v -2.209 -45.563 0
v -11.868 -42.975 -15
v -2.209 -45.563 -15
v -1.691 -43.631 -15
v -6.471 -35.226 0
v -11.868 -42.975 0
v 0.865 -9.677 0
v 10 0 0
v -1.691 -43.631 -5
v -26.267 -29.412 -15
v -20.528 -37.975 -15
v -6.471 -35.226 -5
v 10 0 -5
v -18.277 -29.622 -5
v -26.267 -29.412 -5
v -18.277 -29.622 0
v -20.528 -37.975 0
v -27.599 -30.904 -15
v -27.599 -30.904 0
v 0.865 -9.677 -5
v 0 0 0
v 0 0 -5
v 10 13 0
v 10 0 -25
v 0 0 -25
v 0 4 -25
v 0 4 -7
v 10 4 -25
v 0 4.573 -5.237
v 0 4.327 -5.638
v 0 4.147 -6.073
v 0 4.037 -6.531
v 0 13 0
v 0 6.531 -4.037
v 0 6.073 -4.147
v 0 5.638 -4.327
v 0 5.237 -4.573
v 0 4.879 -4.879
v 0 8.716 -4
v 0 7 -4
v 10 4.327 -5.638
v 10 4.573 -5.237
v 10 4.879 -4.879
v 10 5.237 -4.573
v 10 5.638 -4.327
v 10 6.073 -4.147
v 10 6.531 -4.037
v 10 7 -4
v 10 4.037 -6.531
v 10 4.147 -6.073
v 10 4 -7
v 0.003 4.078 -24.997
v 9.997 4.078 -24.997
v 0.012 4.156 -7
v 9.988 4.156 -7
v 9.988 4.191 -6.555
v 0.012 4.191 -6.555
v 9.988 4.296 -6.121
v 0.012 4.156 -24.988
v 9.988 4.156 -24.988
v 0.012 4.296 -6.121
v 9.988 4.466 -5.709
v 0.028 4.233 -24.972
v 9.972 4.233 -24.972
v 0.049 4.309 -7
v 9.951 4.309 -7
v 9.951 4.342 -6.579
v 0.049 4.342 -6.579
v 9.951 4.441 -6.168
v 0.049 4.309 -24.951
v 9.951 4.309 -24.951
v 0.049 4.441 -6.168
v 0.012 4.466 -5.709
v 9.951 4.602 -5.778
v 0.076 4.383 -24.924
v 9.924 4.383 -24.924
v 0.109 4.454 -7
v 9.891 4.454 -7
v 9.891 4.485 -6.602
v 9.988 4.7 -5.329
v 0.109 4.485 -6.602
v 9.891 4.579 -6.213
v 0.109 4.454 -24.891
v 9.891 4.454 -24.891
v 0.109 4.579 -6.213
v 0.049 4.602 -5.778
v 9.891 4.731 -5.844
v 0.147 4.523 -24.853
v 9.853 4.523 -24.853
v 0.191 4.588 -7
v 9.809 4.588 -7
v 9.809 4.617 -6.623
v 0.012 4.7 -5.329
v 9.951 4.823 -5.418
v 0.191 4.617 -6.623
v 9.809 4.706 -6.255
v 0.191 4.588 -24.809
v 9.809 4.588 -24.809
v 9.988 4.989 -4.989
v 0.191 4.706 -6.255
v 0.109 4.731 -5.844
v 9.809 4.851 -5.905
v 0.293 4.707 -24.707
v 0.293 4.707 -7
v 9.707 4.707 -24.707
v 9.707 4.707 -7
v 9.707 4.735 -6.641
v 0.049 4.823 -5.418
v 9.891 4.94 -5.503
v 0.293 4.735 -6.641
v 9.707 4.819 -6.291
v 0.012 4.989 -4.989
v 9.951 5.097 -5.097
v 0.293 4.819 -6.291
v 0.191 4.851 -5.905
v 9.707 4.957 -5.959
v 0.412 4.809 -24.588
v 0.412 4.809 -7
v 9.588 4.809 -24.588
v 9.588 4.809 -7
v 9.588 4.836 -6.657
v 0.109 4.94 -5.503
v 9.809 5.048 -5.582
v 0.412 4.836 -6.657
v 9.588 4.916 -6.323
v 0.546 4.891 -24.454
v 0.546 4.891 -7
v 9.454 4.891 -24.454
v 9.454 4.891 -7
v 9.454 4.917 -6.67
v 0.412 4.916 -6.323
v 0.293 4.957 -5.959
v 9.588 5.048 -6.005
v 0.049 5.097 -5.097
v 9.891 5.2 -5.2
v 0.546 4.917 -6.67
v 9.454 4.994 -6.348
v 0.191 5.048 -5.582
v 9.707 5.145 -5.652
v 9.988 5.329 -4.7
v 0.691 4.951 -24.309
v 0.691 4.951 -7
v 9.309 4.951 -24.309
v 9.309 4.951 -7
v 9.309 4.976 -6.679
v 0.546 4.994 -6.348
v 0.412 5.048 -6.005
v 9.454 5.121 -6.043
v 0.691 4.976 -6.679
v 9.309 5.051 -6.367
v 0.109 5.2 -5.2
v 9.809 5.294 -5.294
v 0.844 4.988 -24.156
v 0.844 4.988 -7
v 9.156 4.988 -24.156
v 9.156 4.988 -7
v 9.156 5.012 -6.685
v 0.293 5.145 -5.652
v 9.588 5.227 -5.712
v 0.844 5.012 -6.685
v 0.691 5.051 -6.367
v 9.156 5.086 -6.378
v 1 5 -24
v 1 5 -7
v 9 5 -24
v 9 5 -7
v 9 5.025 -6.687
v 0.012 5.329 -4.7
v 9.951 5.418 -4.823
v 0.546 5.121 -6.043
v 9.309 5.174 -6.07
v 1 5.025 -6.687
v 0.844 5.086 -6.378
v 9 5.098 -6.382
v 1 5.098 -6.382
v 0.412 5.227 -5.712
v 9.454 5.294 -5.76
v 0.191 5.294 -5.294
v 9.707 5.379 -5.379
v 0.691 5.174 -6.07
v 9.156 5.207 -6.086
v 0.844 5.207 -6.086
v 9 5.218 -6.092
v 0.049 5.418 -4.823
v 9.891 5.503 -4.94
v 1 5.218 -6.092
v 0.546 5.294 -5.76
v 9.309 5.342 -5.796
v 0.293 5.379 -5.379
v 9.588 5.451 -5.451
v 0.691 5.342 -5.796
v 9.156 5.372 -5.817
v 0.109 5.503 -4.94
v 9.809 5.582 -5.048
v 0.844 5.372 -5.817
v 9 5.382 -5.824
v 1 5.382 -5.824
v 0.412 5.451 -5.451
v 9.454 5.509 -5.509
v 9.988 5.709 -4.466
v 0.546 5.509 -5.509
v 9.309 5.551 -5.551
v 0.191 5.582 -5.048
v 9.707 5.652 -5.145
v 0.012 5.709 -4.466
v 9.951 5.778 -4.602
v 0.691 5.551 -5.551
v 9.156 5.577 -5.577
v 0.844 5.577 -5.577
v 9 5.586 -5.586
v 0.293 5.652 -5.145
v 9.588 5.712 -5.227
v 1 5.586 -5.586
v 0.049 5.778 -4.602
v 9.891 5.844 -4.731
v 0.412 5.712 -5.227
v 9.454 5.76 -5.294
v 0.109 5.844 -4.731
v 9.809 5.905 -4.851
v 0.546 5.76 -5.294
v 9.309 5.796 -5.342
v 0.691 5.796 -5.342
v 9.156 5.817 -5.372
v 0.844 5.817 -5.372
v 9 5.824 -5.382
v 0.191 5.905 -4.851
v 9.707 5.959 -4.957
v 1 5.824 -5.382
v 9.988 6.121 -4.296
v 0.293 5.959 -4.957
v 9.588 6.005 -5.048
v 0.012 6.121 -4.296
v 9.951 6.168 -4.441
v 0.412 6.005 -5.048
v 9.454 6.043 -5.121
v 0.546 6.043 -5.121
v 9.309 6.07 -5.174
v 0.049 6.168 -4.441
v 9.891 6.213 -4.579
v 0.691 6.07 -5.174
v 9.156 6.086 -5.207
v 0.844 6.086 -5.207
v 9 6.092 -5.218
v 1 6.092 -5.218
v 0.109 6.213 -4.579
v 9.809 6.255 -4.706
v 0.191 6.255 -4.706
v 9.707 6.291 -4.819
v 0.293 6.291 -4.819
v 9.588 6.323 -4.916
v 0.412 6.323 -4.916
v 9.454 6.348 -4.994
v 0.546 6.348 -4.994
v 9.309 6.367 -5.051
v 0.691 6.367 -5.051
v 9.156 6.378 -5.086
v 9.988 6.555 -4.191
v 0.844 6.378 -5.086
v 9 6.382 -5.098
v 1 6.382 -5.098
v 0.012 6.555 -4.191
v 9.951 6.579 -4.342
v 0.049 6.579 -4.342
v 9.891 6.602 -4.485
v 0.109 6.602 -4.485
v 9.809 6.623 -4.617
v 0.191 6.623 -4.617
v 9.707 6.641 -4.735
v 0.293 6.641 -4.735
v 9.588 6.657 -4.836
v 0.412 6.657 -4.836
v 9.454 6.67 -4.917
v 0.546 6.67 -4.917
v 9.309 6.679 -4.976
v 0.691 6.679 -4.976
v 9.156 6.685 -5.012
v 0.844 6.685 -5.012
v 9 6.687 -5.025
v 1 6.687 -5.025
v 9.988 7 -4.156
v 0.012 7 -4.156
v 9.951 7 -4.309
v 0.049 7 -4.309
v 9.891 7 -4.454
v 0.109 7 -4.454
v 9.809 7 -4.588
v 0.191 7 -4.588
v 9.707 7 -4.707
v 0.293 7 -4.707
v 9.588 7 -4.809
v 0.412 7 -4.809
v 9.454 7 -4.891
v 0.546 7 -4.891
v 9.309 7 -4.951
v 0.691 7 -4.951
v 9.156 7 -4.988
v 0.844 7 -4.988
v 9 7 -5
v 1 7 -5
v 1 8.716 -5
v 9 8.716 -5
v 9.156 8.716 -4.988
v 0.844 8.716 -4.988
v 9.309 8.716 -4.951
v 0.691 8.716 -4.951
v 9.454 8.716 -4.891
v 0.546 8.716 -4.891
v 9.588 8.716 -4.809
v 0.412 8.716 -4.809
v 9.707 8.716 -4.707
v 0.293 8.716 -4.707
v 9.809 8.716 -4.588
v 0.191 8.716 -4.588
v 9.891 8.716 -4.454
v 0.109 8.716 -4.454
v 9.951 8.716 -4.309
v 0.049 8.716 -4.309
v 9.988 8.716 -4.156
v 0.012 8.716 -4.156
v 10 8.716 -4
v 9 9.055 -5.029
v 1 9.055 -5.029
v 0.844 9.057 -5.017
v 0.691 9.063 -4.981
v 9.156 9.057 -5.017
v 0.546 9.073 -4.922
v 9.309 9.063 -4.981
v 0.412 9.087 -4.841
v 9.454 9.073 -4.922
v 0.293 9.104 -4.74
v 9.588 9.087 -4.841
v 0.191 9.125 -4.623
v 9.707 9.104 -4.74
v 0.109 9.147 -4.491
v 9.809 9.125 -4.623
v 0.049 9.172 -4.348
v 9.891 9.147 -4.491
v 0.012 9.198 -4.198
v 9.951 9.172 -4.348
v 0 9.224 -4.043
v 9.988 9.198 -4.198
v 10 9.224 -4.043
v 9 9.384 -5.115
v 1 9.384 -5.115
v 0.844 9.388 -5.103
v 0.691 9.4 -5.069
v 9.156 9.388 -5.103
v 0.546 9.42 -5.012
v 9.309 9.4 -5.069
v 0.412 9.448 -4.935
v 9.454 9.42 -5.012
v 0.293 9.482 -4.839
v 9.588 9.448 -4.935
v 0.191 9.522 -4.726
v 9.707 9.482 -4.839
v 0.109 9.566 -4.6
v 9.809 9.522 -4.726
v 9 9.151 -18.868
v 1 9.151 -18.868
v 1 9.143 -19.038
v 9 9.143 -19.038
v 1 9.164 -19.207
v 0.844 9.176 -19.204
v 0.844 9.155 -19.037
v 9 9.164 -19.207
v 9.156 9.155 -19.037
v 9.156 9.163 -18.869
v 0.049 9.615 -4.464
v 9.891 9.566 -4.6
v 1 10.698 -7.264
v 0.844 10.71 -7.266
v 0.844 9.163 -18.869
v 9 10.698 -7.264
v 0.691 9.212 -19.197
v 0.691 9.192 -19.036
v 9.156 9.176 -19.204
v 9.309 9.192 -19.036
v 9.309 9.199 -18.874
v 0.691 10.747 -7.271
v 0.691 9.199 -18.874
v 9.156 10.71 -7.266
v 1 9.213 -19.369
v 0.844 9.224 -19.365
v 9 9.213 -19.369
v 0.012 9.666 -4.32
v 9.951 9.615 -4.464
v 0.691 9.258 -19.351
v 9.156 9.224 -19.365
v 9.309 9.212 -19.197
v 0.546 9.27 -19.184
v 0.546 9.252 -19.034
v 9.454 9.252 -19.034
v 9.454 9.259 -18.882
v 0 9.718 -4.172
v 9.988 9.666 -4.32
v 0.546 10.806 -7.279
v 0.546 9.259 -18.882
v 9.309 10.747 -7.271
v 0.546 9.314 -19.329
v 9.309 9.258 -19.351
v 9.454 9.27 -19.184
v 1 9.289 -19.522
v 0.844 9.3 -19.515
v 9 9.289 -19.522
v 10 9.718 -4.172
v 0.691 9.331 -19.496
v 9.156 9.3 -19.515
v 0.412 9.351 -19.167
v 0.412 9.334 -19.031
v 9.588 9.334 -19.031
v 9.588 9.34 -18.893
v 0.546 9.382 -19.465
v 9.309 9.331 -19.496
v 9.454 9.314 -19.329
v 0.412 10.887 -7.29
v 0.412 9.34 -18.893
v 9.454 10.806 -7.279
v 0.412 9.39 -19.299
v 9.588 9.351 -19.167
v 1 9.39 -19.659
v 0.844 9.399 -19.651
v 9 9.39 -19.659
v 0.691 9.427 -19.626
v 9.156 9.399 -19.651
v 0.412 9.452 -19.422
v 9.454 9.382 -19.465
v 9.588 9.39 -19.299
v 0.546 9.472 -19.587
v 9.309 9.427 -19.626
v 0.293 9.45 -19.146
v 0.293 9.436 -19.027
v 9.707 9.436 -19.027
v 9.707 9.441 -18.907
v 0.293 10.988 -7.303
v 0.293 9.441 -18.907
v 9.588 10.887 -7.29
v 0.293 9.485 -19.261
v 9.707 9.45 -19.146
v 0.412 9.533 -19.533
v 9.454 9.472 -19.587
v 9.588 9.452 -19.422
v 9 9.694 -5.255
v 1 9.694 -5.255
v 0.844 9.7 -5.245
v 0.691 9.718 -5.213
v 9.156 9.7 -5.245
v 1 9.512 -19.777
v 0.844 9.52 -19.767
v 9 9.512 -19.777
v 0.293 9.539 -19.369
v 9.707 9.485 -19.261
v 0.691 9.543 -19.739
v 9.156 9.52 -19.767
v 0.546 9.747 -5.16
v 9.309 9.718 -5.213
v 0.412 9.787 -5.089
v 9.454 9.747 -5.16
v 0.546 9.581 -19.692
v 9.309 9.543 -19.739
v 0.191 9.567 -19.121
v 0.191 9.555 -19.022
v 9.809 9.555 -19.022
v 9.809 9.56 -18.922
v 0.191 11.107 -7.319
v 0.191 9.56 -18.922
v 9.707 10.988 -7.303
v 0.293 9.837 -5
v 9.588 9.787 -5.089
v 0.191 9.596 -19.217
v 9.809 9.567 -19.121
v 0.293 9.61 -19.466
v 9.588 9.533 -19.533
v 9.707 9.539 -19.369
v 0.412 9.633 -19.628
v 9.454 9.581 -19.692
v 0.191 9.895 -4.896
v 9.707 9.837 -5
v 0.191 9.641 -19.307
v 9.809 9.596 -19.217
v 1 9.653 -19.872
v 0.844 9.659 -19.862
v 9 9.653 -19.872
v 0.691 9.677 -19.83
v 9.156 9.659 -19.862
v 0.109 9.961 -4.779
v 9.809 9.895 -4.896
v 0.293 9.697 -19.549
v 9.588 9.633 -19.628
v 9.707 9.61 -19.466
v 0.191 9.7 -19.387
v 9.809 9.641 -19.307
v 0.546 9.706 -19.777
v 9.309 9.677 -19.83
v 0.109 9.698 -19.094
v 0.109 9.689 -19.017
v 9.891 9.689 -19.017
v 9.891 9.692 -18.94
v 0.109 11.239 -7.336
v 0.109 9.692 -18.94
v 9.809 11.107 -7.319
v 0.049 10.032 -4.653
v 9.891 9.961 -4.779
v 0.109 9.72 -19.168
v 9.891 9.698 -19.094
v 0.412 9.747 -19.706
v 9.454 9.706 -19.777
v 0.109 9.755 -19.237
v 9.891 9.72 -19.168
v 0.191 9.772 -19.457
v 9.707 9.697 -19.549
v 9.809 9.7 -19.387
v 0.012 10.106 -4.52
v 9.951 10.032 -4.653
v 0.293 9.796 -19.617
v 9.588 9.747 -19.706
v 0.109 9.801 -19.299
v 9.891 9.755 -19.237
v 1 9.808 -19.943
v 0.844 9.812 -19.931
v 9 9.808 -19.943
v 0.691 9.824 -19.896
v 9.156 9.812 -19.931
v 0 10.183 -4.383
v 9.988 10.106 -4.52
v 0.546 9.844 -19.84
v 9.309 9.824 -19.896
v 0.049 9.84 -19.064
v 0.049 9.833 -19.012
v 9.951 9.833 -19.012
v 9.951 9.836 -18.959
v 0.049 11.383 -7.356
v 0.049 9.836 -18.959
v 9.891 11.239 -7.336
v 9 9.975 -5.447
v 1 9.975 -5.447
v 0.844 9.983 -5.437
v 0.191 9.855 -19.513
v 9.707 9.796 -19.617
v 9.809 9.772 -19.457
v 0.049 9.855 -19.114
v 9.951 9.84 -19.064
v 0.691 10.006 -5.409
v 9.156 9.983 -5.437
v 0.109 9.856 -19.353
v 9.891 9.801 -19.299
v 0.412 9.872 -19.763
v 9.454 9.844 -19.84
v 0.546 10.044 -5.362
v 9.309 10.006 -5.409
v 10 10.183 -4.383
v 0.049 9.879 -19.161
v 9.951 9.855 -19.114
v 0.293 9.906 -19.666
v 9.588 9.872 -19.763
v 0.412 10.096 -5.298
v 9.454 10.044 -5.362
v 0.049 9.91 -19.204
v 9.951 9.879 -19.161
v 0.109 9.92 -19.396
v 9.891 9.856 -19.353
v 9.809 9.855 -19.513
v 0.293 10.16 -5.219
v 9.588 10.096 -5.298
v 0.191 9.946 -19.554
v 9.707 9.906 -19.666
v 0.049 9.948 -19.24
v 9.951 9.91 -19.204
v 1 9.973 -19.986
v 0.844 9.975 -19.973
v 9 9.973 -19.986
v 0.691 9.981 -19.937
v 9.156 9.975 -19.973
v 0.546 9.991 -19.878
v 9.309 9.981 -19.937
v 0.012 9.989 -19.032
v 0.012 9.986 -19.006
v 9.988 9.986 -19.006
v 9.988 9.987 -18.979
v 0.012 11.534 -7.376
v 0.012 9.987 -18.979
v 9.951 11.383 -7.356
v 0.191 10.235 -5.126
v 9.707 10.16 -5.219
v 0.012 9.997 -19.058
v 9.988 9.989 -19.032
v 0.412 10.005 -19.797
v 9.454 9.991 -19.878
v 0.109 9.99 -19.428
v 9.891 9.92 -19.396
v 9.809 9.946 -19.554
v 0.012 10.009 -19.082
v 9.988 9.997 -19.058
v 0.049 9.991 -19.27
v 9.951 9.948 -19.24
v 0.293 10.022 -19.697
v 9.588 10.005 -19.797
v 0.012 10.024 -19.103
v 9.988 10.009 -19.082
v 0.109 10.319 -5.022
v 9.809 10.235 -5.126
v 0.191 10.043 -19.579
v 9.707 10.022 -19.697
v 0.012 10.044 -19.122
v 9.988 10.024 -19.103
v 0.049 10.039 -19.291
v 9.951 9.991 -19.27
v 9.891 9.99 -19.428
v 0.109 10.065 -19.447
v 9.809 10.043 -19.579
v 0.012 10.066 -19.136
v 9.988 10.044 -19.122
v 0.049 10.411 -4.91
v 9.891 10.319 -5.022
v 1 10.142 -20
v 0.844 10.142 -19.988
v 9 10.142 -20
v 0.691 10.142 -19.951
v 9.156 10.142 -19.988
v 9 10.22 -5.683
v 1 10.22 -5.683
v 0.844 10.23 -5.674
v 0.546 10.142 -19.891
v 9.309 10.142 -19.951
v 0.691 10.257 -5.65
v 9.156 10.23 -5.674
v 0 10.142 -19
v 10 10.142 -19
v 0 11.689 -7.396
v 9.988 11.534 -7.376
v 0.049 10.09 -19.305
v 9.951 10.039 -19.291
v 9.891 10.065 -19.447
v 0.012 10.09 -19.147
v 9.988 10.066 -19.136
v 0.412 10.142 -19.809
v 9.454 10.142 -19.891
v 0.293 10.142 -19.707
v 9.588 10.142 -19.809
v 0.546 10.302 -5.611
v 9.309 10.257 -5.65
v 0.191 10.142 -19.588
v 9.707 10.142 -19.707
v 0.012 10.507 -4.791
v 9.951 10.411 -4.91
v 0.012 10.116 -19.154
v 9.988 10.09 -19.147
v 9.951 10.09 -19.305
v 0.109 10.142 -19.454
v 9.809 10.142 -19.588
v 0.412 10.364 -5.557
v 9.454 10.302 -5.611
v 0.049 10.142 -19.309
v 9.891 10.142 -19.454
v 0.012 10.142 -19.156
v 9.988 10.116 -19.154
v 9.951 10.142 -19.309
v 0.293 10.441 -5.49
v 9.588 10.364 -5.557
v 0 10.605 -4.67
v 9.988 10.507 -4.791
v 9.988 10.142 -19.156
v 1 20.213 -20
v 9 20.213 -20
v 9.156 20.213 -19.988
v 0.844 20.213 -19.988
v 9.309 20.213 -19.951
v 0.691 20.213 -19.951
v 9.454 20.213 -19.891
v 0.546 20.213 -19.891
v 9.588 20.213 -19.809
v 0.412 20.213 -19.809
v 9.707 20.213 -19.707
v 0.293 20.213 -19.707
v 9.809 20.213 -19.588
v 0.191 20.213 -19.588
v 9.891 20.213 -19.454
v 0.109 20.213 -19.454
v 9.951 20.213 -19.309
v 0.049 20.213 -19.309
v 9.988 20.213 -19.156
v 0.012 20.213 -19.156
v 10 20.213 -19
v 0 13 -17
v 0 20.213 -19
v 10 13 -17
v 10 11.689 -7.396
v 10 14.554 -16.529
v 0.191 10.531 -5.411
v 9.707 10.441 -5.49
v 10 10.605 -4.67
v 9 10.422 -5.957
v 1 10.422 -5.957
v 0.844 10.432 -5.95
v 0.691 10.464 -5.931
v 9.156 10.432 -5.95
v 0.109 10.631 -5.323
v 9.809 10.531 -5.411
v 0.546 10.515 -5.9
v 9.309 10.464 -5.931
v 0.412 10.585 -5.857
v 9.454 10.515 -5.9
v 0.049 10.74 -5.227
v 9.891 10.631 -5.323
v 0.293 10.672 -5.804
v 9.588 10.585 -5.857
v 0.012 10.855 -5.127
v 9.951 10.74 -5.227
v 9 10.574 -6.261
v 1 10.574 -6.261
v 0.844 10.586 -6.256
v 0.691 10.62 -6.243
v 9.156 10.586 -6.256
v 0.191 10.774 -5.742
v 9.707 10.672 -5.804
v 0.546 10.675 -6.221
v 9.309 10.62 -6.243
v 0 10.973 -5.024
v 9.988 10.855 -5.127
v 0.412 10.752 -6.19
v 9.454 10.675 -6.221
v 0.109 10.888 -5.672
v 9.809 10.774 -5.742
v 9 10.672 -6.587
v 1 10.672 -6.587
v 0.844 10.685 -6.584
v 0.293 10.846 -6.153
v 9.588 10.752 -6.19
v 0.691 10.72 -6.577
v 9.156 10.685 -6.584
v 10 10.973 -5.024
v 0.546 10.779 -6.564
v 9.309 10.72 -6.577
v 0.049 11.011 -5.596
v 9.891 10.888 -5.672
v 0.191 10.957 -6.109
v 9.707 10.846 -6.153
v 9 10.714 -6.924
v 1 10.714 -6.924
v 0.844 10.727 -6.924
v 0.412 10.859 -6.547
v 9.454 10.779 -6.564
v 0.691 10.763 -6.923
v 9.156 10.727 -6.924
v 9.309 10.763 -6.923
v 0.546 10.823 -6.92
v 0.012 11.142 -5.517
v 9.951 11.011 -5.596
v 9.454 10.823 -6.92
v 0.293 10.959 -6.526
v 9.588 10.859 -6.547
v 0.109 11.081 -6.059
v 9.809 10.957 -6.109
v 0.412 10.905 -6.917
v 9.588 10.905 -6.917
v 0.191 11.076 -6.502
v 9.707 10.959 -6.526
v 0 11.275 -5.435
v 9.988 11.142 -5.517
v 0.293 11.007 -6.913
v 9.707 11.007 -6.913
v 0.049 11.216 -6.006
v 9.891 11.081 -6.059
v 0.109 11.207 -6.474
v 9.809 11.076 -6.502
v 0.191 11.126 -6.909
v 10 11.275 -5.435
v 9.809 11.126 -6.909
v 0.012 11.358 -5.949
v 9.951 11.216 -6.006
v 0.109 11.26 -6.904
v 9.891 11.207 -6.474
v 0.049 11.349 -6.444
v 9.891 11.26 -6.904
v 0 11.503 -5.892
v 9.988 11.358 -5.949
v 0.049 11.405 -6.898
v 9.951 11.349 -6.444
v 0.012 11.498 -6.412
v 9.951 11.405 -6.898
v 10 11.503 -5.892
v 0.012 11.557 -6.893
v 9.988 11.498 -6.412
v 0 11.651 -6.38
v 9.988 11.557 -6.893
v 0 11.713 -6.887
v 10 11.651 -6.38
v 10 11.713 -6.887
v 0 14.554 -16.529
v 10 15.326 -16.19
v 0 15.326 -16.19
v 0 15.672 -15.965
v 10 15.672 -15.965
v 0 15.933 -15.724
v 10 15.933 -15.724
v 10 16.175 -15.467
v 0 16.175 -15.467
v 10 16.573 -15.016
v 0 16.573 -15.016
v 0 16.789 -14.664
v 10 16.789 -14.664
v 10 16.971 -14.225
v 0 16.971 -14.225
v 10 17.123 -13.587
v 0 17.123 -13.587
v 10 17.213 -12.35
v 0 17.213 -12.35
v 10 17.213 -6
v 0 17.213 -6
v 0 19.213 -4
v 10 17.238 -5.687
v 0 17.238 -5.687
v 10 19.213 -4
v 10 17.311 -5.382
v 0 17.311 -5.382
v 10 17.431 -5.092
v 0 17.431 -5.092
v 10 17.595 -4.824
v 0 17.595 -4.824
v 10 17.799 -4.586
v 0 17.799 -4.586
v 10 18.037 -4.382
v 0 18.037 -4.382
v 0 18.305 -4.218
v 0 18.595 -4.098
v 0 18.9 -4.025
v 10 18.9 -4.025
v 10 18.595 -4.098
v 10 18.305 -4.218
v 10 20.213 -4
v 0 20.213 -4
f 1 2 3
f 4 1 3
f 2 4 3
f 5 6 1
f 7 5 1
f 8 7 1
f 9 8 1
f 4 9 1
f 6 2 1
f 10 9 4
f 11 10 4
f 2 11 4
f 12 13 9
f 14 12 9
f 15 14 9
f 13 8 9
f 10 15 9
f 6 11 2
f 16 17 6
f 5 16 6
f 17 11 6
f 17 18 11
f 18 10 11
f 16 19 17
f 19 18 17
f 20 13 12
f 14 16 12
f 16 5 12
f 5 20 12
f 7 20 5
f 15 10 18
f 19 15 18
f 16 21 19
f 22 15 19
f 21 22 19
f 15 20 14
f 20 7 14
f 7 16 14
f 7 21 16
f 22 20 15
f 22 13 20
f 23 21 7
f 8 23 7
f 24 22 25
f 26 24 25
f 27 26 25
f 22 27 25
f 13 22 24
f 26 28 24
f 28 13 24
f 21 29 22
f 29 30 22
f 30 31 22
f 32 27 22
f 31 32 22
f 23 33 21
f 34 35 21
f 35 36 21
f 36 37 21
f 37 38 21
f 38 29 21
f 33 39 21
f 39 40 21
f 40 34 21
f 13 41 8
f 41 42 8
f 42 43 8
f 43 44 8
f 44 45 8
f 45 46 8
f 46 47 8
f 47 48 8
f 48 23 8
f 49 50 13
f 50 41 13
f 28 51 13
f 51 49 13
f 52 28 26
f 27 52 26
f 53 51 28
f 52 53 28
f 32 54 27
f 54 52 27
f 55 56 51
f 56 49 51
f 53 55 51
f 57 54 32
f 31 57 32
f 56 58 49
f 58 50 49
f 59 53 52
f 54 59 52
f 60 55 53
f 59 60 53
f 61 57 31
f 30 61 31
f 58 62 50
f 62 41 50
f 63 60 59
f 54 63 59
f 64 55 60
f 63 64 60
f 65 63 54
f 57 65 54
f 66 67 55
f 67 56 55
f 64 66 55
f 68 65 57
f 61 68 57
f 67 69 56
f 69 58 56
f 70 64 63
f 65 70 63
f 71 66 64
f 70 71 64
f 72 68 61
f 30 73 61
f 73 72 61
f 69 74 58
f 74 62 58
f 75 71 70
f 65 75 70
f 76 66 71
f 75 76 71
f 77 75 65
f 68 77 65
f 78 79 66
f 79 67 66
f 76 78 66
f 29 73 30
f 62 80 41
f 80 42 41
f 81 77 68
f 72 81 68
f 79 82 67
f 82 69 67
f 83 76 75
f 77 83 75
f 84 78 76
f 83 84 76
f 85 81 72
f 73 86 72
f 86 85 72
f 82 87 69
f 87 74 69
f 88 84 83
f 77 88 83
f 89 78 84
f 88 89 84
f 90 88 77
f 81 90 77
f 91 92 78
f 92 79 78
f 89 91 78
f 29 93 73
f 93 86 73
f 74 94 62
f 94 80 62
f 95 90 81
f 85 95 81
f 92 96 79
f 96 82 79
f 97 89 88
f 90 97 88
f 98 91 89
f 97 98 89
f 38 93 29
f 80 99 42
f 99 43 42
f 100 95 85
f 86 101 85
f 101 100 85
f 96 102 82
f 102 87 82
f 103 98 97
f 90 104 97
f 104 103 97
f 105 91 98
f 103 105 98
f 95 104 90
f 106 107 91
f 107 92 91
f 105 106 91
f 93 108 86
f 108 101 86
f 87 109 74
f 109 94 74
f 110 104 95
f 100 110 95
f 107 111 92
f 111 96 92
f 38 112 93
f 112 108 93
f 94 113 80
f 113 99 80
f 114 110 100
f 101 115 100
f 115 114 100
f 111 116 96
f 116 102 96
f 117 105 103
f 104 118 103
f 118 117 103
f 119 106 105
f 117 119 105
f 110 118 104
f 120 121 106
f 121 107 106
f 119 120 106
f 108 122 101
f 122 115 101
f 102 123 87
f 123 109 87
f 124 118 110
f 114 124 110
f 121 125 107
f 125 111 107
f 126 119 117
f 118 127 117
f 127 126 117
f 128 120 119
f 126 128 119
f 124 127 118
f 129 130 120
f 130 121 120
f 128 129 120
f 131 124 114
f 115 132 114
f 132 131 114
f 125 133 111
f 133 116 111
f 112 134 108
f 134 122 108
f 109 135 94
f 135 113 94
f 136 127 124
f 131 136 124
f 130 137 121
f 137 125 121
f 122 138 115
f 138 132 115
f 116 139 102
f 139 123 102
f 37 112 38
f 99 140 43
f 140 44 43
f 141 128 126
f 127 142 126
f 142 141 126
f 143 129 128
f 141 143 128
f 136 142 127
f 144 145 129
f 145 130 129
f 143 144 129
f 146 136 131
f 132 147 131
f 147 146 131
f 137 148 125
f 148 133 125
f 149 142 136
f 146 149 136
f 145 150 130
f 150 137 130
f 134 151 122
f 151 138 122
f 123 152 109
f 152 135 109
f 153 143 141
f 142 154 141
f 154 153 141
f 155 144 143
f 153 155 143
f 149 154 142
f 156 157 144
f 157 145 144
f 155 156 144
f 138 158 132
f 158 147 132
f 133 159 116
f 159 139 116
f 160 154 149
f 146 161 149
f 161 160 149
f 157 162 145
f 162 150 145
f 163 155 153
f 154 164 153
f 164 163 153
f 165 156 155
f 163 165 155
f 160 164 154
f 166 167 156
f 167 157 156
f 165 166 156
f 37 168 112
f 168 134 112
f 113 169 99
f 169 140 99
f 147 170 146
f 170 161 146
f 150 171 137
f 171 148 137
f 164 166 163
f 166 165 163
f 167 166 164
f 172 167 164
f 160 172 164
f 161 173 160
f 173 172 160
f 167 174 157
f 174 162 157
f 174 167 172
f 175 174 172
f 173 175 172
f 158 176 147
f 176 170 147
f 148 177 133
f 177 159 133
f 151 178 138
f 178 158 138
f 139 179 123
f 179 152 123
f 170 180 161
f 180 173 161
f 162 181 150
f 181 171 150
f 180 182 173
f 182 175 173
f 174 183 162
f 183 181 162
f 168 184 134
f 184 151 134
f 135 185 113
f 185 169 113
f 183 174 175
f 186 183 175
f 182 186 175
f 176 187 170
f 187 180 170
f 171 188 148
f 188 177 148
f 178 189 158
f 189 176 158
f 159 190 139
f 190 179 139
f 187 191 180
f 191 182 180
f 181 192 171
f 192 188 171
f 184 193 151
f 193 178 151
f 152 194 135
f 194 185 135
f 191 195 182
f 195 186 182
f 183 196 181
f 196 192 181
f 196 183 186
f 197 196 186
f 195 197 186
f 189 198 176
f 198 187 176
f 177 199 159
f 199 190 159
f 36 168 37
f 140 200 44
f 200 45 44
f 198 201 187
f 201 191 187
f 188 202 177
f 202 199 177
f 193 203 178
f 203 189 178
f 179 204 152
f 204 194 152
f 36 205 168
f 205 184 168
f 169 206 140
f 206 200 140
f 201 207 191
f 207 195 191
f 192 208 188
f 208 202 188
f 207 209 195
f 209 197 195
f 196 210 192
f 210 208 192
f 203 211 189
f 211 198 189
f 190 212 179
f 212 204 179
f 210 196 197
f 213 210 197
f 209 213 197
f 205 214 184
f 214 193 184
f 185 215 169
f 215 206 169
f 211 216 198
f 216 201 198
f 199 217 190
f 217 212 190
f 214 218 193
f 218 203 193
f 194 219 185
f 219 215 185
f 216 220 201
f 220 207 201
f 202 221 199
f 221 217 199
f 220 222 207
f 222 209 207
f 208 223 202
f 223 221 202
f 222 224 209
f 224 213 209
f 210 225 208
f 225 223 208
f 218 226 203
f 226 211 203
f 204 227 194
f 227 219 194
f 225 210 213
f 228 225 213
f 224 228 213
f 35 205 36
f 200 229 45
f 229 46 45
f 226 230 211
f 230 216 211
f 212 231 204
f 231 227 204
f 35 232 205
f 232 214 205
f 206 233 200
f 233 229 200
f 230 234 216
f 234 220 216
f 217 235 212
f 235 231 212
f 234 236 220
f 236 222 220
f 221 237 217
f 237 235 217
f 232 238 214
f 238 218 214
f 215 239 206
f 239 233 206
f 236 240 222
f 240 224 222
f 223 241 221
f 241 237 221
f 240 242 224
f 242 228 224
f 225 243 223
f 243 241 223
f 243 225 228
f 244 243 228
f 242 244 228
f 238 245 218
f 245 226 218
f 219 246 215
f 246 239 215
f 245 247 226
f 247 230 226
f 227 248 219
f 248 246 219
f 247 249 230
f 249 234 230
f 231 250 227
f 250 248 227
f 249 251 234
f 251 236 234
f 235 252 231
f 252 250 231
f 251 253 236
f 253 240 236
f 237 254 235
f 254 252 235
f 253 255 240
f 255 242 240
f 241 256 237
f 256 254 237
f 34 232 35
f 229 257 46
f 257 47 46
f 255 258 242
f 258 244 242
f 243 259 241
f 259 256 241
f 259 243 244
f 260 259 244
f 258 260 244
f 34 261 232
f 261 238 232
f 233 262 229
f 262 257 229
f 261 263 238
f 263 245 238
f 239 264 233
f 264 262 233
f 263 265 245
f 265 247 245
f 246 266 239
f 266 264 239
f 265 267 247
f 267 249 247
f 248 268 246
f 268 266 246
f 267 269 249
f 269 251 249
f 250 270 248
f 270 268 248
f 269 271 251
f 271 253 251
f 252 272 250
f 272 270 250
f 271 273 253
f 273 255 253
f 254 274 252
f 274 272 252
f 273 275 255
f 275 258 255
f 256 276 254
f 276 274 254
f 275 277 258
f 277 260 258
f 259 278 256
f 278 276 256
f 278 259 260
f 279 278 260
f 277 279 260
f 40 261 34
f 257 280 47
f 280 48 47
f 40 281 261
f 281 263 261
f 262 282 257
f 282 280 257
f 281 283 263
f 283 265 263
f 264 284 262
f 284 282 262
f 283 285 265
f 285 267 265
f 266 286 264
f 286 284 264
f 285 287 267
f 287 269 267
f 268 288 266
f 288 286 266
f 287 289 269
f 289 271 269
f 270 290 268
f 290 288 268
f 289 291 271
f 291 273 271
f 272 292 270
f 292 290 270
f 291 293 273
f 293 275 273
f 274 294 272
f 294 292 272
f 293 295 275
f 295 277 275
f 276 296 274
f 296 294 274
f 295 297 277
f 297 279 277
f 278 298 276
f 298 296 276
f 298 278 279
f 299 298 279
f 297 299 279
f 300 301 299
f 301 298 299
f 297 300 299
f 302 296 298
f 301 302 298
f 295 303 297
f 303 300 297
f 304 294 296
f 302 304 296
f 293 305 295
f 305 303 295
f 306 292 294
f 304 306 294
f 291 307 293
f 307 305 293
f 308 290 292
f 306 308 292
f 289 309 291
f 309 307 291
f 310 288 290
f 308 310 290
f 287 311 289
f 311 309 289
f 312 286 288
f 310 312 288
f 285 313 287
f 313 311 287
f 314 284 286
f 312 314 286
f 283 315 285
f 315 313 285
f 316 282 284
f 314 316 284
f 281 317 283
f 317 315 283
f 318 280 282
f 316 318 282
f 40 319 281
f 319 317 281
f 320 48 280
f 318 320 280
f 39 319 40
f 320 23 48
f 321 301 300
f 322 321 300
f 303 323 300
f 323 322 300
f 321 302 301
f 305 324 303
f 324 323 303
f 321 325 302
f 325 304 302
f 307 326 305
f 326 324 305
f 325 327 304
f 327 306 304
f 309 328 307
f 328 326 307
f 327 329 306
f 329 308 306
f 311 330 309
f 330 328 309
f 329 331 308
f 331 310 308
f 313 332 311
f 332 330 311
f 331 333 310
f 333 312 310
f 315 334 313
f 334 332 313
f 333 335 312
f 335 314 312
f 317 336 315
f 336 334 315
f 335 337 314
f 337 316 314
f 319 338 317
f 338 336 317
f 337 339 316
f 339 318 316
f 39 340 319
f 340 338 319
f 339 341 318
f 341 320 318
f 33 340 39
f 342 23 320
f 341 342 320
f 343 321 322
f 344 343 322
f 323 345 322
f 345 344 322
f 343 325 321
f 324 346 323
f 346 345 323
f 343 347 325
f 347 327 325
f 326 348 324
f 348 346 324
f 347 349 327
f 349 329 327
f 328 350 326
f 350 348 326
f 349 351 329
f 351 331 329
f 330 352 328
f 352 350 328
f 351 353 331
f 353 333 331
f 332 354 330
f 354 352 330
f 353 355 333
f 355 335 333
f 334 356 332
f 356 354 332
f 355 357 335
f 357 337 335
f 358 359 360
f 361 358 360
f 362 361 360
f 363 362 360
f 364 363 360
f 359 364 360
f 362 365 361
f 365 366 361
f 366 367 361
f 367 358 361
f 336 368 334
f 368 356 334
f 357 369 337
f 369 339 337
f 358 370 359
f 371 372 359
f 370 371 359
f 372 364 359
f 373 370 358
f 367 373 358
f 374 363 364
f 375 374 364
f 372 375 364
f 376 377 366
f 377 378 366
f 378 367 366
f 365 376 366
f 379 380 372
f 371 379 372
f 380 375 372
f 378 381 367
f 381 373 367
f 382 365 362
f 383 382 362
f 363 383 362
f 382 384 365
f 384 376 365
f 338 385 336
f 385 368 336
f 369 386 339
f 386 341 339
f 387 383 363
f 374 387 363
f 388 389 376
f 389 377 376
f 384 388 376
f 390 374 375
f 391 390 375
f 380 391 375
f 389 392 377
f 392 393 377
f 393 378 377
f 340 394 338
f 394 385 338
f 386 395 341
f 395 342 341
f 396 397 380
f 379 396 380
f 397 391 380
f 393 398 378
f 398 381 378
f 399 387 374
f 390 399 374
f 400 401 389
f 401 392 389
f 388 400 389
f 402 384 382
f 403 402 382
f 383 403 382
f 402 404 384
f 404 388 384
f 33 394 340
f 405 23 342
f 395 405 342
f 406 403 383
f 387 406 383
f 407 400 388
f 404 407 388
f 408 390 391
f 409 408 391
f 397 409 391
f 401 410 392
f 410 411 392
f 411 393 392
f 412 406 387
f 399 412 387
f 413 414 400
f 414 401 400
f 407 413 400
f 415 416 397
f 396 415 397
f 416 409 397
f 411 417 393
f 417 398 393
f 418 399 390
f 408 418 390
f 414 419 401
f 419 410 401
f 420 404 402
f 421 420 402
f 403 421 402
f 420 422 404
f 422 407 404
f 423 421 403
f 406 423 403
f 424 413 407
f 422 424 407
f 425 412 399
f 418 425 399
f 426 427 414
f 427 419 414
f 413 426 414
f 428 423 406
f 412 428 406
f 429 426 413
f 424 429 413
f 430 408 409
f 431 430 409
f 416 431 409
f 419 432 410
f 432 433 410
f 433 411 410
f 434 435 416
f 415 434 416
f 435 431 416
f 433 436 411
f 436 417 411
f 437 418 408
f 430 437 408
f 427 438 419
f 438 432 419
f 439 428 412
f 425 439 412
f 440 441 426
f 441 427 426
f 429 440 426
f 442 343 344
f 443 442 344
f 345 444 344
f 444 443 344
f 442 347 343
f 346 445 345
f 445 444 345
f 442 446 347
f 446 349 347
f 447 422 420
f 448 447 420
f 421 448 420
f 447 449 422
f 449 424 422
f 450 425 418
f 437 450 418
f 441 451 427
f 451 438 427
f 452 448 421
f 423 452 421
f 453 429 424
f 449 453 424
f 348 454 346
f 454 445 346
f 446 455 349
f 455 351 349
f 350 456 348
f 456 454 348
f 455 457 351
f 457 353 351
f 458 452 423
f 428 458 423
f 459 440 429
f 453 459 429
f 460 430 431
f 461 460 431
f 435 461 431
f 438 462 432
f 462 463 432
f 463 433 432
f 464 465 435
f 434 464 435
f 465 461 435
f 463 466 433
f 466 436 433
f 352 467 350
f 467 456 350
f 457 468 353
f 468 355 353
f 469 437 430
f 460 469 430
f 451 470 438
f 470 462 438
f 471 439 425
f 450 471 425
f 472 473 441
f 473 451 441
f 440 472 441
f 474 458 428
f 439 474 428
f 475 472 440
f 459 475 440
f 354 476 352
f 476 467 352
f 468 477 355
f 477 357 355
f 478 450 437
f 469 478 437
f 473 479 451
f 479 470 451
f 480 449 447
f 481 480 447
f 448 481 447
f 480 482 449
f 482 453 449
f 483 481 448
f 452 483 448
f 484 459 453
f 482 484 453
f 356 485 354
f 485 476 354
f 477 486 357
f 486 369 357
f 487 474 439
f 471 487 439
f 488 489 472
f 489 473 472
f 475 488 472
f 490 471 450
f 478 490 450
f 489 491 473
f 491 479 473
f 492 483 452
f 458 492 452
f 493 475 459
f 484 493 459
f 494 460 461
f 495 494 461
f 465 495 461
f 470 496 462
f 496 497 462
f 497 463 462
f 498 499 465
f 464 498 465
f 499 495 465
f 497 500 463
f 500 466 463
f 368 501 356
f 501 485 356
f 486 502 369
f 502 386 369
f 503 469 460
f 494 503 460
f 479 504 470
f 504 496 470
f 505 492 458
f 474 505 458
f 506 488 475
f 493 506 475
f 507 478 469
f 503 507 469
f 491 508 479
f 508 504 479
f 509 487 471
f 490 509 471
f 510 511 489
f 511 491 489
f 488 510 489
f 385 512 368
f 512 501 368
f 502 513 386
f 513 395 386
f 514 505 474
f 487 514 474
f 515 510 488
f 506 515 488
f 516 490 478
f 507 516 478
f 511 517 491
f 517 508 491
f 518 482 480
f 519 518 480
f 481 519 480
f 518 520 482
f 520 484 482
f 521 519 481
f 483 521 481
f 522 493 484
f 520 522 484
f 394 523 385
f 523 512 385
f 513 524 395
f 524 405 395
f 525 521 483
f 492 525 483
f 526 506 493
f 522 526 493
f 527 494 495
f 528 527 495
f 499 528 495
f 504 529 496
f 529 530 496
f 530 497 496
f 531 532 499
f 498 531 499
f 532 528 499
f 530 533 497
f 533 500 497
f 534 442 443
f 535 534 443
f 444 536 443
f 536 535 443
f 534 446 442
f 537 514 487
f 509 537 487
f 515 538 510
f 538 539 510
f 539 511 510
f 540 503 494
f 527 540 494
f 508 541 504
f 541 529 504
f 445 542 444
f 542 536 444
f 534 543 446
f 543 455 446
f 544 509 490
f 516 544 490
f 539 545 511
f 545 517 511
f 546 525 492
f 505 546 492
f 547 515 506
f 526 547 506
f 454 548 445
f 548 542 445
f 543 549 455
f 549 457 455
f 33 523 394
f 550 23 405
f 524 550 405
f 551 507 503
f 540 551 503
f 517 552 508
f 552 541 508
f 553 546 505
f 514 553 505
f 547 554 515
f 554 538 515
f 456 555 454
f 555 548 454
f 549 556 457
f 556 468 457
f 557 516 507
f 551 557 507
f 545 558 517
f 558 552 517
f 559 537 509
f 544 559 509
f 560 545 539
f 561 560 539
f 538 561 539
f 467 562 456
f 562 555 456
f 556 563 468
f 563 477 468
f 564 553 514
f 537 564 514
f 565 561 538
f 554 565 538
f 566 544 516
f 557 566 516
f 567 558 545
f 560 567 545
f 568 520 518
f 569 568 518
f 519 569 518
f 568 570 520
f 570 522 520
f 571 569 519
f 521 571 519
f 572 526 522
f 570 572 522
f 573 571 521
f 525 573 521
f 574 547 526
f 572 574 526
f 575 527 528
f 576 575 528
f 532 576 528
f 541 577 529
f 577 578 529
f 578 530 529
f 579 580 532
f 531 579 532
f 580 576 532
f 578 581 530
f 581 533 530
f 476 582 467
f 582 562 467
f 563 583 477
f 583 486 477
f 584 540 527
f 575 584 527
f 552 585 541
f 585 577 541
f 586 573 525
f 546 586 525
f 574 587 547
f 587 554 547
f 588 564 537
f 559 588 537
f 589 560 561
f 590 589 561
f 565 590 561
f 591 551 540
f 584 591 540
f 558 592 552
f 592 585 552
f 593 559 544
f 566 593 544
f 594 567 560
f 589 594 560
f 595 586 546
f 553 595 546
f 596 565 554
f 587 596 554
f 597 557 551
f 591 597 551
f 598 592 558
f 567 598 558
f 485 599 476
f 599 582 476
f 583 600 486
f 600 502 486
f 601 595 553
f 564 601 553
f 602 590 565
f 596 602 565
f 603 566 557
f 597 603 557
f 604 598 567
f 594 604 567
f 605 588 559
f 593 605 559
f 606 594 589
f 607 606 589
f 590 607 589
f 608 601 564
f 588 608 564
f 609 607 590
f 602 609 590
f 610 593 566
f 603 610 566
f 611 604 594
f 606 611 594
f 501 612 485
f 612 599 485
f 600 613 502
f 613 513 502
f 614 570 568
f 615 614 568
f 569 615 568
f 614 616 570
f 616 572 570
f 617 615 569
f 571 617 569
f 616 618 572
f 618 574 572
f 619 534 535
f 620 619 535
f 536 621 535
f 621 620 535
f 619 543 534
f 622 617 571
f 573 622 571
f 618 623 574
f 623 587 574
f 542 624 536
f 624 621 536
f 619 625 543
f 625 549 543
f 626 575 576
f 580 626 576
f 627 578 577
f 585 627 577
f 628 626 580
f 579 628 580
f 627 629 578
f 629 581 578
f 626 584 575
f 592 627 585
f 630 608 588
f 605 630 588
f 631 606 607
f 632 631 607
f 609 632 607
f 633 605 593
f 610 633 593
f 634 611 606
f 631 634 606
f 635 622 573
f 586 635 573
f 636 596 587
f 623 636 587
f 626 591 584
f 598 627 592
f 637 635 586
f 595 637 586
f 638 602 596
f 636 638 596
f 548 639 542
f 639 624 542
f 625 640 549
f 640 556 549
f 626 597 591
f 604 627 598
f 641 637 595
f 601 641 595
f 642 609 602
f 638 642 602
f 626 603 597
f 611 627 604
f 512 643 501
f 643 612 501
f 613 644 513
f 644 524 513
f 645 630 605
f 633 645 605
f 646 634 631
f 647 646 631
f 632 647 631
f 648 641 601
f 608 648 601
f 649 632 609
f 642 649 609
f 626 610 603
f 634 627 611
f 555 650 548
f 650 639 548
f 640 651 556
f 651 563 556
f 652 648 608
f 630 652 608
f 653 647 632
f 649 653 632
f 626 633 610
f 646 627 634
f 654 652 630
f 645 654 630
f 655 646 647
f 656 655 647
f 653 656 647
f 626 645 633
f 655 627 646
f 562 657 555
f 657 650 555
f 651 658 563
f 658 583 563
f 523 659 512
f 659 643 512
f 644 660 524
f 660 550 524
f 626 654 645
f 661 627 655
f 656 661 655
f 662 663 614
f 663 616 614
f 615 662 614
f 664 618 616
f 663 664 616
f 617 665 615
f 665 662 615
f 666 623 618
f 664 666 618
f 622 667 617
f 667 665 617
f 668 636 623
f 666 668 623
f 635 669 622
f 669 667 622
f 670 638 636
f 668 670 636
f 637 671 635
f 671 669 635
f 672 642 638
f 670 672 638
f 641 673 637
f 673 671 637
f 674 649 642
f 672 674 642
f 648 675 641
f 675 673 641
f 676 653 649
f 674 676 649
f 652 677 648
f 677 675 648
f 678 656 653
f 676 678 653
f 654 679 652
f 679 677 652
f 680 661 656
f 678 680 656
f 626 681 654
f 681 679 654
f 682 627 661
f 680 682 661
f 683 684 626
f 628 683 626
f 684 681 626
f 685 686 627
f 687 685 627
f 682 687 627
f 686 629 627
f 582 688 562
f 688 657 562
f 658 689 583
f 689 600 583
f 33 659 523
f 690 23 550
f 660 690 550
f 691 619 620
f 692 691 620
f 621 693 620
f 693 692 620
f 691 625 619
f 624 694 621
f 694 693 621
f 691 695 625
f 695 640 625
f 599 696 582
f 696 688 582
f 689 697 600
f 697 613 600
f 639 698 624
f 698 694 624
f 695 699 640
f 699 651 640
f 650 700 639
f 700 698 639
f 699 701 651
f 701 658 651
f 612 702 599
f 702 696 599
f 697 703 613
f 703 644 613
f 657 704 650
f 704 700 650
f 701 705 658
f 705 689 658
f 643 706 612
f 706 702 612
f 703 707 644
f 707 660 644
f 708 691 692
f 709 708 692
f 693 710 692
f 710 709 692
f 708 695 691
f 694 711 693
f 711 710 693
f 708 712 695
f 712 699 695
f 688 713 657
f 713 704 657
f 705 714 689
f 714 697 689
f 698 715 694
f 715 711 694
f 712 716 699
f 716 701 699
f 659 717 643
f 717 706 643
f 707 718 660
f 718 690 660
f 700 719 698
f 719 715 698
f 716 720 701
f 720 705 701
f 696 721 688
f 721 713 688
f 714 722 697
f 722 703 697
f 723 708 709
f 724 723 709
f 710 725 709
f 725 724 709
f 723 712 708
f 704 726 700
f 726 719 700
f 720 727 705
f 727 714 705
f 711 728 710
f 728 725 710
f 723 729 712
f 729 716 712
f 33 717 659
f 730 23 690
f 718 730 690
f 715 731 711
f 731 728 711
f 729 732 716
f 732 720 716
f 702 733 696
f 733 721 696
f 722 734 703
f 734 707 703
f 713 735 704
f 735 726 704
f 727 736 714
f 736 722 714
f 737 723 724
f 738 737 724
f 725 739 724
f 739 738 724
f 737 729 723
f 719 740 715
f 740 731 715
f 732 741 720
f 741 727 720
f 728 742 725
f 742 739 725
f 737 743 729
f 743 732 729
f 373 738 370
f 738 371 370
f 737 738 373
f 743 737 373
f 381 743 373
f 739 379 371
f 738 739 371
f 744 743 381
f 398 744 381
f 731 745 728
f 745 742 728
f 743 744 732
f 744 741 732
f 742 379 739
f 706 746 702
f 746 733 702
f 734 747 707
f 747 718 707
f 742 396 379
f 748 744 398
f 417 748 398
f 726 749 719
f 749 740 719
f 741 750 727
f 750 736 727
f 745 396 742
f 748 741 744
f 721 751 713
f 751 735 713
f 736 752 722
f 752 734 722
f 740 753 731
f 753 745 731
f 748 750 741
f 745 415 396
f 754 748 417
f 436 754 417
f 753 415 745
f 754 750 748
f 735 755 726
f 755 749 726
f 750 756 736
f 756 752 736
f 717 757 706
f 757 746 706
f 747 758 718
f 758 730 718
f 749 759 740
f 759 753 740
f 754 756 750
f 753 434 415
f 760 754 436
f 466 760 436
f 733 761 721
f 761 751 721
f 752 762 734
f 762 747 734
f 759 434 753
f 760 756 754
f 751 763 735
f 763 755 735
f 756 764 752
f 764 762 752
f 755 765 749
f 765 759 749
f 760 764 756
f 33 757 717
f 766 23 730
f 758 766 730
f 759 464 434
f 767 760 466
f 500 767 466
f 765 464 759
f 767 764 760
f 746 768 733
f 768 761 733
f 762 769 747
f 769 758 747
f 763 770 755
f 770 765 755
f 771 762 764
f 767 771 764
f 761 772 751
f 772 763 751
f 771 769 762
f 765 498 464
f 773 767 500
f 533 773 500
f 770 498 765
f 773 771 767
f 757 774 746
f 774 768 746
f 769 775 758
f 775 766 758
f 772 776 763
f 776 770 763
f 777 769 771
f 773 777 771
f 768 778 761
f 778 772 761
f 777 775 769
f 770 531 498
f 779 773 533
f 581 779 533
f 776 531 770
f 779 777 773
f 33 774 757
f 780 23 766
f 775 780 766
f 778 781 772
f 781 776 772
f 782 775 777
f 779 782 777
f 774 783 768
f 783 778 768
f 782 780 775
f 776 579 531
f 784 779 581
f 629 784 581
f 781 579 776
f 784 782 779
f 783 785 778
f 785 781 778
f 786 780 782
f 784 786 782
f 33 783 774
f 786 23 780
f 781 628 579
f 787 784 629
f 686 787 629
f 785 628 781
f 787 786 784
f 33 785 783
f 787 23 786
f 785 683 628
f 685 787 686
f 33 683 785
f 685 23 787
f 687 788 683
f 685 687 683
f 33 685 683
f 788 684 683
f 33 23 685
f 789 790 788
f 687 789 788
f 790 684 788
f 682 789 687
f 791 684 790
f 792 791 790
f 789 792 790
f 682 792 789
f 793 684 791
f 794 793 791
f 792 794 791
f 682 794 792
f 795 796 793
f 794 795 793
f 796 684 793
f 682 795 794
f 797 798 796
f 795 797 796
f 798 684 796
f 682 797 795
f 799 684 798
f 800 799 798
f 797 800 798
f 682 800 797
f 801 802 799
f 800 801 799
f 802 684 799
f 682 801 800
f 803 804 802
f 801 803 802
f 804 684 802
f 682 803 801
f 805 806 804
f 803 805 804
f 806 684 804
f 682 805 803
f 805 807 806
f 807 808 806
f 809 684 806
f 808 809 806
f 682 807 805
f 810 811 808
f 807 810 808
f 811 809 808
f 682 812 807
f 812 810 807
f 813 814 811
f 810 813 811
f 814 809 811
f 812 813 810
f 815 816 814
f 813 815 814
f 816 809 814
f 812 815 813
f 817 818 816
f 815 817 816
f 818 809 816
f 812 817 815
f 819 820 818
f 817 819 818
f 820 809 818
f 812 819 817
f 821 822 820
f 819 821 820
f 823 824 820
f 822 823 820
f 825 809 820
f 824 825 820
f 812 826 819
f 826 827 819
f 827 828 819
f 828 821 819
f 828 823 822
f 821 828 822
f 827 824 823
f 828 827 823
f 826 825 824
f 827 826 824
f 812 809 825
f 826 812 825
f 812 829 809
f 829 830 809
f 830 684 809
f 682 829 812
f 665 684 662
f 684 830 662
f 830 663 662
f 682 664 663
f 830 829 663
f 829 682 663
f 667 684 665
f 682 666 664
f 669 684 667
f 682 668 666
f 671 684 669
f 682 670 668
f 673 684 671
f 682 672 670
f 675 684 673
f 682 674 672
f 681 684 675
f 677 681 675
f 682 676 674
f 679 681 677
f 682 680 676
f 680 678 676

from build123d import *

# Parameters (mm, degrees)
BOSS_EXTRUDE1_DEPTH = 10
BOSS_EXTRUDE2_DEPTH = 5
BOSS_EXTRUDE3_DEPTH = 10
FILLET1_R           = 2
FILLET2_R           = 1


with BuildPart() as part:
    # Sketch2 → Boss-Extrude1 (new body)
    with BuildSketch(Plane(origin=(0, 0, 0), x_dir=(0, 0, -1), z_dir=(1, 0, 0))):
        with BuildLine():
            Line((17, 13), (20, 13))
            Line((20, 13), (20, 20.212962963))
            Line((20, 20.212962963), (4, 20.212962963))
            Line((4, 20.212962963), (4, 19.212962963))
            ThreePointArc((4, 19.212962963), (4.585786438, 17.798749401), (6, 17.212962963))
            Line((6, 17.212962963), (12.34969837, 17.212962963))
            add(Edge.make_bspline(
                [(12.34969837, 17.212962963), (14.53461085, 17.212962963), (15.619631597, 15.872704948), (16.340899905, 15.502936293), (17, 13)],
                knots=[0, 0, 0, 0, 0.495488683, 1, 1, 1, 1], degree=3))
        make_face()
        Polygon((20, 11), (20, 13), (17, 13), (5, 13), (5, 11), align=None)
        with BuildLine():
            Line((20, 10.142183063), (20, 11))
            Line((20, 11), (5, 11))
            Line((5, 11), (18.86783628, 9.150955163))
            ThreePointArc((18.86783628, 9.150955163), (19.658724631, 9.389798946), (20, 10.142183063))
        make_face()
        Polygon((5, 11), (5, 13), (0, 13), (0, 0), (5, 0), (5, 3), (5, 5), align=None)
        Polygon((25, 5), (5, 5), (5, 3), (5, 0), (25, 0), align=None)
    extrude(amount=BOSS_EXTRUDE1_DEPTH)

    # Sketch4 → Boss-Extrude2 (add)
    with BuildSketch(Plane.XY):
        Polygon((10, 0), (-2.208590345, -45.563079458), (-11.867848608, -42.974889007), (-20.528102646, -37.974889007), (-27.599170458, -30.903821195), (0, 0), align=None)
        Polygon((-18.277381589, -29.621786509), (-6.470899787, -35.226395597), (0.864887029, -9.676755979), align=None, mode=Mode.SUBTRACT)
    extrude(amount=-BOSS_EXTRUDE2_DEPTH)

    # Sketch5 → Boss-Extrude3 (add)
    with BuildSketch(Plane(origin=(0, 0, -5), x_dir=(-1, 0, 0), z_dir=(0, 0, -1))):
        Polygon((2.208590345, -45.563079458), (11.867848608, -42.974889007), (20.528102646, -37.974889007), (27.599170458, -30.903821195), (26.266965075, -29.412101108), (1.690952255, -43.631227805), align=None)
    extrude(amount=BOSS_EXTRUDE3_DEPTH)

    # Fillet1
    fillet1_edges = [part.edges().sort_by_distance(p)[0] for p in [
        (5, 11, -5),
        (5, 5, -5),
    ]]
    fillet(fillet1_edges, radius=FILLET1_R)

    # Fillet2
    fillet2_edges = [part.edges().sort_by_distance(p)[0] for p in [
        (0, 15.177573013, -20),
        (0, 9.389798946, -19.658724631),
        (0, 9.924522419, -13.06608186),
        (10, 9.924522419, -13.06608186),
        (10, 9.389798946, -19.658724631),
        (5, 5, -25),
        (10, 15.177573013, -20),
        (0, 7.857816937, -5),
        (10, 7.857816937, -5),
        (0, 5, -16),
        (10, 5, -16),
        (0, 5.585786438, -5.585786438),
        (10, 5.585786438, -5.585786438),
        (0, 10.220402108, -5.682550737),
        (10, 10.220402108, -5.682550737),
    ]]
    fillet(fillet2_edges, radius=FILLET2_R)


solid = part.part
